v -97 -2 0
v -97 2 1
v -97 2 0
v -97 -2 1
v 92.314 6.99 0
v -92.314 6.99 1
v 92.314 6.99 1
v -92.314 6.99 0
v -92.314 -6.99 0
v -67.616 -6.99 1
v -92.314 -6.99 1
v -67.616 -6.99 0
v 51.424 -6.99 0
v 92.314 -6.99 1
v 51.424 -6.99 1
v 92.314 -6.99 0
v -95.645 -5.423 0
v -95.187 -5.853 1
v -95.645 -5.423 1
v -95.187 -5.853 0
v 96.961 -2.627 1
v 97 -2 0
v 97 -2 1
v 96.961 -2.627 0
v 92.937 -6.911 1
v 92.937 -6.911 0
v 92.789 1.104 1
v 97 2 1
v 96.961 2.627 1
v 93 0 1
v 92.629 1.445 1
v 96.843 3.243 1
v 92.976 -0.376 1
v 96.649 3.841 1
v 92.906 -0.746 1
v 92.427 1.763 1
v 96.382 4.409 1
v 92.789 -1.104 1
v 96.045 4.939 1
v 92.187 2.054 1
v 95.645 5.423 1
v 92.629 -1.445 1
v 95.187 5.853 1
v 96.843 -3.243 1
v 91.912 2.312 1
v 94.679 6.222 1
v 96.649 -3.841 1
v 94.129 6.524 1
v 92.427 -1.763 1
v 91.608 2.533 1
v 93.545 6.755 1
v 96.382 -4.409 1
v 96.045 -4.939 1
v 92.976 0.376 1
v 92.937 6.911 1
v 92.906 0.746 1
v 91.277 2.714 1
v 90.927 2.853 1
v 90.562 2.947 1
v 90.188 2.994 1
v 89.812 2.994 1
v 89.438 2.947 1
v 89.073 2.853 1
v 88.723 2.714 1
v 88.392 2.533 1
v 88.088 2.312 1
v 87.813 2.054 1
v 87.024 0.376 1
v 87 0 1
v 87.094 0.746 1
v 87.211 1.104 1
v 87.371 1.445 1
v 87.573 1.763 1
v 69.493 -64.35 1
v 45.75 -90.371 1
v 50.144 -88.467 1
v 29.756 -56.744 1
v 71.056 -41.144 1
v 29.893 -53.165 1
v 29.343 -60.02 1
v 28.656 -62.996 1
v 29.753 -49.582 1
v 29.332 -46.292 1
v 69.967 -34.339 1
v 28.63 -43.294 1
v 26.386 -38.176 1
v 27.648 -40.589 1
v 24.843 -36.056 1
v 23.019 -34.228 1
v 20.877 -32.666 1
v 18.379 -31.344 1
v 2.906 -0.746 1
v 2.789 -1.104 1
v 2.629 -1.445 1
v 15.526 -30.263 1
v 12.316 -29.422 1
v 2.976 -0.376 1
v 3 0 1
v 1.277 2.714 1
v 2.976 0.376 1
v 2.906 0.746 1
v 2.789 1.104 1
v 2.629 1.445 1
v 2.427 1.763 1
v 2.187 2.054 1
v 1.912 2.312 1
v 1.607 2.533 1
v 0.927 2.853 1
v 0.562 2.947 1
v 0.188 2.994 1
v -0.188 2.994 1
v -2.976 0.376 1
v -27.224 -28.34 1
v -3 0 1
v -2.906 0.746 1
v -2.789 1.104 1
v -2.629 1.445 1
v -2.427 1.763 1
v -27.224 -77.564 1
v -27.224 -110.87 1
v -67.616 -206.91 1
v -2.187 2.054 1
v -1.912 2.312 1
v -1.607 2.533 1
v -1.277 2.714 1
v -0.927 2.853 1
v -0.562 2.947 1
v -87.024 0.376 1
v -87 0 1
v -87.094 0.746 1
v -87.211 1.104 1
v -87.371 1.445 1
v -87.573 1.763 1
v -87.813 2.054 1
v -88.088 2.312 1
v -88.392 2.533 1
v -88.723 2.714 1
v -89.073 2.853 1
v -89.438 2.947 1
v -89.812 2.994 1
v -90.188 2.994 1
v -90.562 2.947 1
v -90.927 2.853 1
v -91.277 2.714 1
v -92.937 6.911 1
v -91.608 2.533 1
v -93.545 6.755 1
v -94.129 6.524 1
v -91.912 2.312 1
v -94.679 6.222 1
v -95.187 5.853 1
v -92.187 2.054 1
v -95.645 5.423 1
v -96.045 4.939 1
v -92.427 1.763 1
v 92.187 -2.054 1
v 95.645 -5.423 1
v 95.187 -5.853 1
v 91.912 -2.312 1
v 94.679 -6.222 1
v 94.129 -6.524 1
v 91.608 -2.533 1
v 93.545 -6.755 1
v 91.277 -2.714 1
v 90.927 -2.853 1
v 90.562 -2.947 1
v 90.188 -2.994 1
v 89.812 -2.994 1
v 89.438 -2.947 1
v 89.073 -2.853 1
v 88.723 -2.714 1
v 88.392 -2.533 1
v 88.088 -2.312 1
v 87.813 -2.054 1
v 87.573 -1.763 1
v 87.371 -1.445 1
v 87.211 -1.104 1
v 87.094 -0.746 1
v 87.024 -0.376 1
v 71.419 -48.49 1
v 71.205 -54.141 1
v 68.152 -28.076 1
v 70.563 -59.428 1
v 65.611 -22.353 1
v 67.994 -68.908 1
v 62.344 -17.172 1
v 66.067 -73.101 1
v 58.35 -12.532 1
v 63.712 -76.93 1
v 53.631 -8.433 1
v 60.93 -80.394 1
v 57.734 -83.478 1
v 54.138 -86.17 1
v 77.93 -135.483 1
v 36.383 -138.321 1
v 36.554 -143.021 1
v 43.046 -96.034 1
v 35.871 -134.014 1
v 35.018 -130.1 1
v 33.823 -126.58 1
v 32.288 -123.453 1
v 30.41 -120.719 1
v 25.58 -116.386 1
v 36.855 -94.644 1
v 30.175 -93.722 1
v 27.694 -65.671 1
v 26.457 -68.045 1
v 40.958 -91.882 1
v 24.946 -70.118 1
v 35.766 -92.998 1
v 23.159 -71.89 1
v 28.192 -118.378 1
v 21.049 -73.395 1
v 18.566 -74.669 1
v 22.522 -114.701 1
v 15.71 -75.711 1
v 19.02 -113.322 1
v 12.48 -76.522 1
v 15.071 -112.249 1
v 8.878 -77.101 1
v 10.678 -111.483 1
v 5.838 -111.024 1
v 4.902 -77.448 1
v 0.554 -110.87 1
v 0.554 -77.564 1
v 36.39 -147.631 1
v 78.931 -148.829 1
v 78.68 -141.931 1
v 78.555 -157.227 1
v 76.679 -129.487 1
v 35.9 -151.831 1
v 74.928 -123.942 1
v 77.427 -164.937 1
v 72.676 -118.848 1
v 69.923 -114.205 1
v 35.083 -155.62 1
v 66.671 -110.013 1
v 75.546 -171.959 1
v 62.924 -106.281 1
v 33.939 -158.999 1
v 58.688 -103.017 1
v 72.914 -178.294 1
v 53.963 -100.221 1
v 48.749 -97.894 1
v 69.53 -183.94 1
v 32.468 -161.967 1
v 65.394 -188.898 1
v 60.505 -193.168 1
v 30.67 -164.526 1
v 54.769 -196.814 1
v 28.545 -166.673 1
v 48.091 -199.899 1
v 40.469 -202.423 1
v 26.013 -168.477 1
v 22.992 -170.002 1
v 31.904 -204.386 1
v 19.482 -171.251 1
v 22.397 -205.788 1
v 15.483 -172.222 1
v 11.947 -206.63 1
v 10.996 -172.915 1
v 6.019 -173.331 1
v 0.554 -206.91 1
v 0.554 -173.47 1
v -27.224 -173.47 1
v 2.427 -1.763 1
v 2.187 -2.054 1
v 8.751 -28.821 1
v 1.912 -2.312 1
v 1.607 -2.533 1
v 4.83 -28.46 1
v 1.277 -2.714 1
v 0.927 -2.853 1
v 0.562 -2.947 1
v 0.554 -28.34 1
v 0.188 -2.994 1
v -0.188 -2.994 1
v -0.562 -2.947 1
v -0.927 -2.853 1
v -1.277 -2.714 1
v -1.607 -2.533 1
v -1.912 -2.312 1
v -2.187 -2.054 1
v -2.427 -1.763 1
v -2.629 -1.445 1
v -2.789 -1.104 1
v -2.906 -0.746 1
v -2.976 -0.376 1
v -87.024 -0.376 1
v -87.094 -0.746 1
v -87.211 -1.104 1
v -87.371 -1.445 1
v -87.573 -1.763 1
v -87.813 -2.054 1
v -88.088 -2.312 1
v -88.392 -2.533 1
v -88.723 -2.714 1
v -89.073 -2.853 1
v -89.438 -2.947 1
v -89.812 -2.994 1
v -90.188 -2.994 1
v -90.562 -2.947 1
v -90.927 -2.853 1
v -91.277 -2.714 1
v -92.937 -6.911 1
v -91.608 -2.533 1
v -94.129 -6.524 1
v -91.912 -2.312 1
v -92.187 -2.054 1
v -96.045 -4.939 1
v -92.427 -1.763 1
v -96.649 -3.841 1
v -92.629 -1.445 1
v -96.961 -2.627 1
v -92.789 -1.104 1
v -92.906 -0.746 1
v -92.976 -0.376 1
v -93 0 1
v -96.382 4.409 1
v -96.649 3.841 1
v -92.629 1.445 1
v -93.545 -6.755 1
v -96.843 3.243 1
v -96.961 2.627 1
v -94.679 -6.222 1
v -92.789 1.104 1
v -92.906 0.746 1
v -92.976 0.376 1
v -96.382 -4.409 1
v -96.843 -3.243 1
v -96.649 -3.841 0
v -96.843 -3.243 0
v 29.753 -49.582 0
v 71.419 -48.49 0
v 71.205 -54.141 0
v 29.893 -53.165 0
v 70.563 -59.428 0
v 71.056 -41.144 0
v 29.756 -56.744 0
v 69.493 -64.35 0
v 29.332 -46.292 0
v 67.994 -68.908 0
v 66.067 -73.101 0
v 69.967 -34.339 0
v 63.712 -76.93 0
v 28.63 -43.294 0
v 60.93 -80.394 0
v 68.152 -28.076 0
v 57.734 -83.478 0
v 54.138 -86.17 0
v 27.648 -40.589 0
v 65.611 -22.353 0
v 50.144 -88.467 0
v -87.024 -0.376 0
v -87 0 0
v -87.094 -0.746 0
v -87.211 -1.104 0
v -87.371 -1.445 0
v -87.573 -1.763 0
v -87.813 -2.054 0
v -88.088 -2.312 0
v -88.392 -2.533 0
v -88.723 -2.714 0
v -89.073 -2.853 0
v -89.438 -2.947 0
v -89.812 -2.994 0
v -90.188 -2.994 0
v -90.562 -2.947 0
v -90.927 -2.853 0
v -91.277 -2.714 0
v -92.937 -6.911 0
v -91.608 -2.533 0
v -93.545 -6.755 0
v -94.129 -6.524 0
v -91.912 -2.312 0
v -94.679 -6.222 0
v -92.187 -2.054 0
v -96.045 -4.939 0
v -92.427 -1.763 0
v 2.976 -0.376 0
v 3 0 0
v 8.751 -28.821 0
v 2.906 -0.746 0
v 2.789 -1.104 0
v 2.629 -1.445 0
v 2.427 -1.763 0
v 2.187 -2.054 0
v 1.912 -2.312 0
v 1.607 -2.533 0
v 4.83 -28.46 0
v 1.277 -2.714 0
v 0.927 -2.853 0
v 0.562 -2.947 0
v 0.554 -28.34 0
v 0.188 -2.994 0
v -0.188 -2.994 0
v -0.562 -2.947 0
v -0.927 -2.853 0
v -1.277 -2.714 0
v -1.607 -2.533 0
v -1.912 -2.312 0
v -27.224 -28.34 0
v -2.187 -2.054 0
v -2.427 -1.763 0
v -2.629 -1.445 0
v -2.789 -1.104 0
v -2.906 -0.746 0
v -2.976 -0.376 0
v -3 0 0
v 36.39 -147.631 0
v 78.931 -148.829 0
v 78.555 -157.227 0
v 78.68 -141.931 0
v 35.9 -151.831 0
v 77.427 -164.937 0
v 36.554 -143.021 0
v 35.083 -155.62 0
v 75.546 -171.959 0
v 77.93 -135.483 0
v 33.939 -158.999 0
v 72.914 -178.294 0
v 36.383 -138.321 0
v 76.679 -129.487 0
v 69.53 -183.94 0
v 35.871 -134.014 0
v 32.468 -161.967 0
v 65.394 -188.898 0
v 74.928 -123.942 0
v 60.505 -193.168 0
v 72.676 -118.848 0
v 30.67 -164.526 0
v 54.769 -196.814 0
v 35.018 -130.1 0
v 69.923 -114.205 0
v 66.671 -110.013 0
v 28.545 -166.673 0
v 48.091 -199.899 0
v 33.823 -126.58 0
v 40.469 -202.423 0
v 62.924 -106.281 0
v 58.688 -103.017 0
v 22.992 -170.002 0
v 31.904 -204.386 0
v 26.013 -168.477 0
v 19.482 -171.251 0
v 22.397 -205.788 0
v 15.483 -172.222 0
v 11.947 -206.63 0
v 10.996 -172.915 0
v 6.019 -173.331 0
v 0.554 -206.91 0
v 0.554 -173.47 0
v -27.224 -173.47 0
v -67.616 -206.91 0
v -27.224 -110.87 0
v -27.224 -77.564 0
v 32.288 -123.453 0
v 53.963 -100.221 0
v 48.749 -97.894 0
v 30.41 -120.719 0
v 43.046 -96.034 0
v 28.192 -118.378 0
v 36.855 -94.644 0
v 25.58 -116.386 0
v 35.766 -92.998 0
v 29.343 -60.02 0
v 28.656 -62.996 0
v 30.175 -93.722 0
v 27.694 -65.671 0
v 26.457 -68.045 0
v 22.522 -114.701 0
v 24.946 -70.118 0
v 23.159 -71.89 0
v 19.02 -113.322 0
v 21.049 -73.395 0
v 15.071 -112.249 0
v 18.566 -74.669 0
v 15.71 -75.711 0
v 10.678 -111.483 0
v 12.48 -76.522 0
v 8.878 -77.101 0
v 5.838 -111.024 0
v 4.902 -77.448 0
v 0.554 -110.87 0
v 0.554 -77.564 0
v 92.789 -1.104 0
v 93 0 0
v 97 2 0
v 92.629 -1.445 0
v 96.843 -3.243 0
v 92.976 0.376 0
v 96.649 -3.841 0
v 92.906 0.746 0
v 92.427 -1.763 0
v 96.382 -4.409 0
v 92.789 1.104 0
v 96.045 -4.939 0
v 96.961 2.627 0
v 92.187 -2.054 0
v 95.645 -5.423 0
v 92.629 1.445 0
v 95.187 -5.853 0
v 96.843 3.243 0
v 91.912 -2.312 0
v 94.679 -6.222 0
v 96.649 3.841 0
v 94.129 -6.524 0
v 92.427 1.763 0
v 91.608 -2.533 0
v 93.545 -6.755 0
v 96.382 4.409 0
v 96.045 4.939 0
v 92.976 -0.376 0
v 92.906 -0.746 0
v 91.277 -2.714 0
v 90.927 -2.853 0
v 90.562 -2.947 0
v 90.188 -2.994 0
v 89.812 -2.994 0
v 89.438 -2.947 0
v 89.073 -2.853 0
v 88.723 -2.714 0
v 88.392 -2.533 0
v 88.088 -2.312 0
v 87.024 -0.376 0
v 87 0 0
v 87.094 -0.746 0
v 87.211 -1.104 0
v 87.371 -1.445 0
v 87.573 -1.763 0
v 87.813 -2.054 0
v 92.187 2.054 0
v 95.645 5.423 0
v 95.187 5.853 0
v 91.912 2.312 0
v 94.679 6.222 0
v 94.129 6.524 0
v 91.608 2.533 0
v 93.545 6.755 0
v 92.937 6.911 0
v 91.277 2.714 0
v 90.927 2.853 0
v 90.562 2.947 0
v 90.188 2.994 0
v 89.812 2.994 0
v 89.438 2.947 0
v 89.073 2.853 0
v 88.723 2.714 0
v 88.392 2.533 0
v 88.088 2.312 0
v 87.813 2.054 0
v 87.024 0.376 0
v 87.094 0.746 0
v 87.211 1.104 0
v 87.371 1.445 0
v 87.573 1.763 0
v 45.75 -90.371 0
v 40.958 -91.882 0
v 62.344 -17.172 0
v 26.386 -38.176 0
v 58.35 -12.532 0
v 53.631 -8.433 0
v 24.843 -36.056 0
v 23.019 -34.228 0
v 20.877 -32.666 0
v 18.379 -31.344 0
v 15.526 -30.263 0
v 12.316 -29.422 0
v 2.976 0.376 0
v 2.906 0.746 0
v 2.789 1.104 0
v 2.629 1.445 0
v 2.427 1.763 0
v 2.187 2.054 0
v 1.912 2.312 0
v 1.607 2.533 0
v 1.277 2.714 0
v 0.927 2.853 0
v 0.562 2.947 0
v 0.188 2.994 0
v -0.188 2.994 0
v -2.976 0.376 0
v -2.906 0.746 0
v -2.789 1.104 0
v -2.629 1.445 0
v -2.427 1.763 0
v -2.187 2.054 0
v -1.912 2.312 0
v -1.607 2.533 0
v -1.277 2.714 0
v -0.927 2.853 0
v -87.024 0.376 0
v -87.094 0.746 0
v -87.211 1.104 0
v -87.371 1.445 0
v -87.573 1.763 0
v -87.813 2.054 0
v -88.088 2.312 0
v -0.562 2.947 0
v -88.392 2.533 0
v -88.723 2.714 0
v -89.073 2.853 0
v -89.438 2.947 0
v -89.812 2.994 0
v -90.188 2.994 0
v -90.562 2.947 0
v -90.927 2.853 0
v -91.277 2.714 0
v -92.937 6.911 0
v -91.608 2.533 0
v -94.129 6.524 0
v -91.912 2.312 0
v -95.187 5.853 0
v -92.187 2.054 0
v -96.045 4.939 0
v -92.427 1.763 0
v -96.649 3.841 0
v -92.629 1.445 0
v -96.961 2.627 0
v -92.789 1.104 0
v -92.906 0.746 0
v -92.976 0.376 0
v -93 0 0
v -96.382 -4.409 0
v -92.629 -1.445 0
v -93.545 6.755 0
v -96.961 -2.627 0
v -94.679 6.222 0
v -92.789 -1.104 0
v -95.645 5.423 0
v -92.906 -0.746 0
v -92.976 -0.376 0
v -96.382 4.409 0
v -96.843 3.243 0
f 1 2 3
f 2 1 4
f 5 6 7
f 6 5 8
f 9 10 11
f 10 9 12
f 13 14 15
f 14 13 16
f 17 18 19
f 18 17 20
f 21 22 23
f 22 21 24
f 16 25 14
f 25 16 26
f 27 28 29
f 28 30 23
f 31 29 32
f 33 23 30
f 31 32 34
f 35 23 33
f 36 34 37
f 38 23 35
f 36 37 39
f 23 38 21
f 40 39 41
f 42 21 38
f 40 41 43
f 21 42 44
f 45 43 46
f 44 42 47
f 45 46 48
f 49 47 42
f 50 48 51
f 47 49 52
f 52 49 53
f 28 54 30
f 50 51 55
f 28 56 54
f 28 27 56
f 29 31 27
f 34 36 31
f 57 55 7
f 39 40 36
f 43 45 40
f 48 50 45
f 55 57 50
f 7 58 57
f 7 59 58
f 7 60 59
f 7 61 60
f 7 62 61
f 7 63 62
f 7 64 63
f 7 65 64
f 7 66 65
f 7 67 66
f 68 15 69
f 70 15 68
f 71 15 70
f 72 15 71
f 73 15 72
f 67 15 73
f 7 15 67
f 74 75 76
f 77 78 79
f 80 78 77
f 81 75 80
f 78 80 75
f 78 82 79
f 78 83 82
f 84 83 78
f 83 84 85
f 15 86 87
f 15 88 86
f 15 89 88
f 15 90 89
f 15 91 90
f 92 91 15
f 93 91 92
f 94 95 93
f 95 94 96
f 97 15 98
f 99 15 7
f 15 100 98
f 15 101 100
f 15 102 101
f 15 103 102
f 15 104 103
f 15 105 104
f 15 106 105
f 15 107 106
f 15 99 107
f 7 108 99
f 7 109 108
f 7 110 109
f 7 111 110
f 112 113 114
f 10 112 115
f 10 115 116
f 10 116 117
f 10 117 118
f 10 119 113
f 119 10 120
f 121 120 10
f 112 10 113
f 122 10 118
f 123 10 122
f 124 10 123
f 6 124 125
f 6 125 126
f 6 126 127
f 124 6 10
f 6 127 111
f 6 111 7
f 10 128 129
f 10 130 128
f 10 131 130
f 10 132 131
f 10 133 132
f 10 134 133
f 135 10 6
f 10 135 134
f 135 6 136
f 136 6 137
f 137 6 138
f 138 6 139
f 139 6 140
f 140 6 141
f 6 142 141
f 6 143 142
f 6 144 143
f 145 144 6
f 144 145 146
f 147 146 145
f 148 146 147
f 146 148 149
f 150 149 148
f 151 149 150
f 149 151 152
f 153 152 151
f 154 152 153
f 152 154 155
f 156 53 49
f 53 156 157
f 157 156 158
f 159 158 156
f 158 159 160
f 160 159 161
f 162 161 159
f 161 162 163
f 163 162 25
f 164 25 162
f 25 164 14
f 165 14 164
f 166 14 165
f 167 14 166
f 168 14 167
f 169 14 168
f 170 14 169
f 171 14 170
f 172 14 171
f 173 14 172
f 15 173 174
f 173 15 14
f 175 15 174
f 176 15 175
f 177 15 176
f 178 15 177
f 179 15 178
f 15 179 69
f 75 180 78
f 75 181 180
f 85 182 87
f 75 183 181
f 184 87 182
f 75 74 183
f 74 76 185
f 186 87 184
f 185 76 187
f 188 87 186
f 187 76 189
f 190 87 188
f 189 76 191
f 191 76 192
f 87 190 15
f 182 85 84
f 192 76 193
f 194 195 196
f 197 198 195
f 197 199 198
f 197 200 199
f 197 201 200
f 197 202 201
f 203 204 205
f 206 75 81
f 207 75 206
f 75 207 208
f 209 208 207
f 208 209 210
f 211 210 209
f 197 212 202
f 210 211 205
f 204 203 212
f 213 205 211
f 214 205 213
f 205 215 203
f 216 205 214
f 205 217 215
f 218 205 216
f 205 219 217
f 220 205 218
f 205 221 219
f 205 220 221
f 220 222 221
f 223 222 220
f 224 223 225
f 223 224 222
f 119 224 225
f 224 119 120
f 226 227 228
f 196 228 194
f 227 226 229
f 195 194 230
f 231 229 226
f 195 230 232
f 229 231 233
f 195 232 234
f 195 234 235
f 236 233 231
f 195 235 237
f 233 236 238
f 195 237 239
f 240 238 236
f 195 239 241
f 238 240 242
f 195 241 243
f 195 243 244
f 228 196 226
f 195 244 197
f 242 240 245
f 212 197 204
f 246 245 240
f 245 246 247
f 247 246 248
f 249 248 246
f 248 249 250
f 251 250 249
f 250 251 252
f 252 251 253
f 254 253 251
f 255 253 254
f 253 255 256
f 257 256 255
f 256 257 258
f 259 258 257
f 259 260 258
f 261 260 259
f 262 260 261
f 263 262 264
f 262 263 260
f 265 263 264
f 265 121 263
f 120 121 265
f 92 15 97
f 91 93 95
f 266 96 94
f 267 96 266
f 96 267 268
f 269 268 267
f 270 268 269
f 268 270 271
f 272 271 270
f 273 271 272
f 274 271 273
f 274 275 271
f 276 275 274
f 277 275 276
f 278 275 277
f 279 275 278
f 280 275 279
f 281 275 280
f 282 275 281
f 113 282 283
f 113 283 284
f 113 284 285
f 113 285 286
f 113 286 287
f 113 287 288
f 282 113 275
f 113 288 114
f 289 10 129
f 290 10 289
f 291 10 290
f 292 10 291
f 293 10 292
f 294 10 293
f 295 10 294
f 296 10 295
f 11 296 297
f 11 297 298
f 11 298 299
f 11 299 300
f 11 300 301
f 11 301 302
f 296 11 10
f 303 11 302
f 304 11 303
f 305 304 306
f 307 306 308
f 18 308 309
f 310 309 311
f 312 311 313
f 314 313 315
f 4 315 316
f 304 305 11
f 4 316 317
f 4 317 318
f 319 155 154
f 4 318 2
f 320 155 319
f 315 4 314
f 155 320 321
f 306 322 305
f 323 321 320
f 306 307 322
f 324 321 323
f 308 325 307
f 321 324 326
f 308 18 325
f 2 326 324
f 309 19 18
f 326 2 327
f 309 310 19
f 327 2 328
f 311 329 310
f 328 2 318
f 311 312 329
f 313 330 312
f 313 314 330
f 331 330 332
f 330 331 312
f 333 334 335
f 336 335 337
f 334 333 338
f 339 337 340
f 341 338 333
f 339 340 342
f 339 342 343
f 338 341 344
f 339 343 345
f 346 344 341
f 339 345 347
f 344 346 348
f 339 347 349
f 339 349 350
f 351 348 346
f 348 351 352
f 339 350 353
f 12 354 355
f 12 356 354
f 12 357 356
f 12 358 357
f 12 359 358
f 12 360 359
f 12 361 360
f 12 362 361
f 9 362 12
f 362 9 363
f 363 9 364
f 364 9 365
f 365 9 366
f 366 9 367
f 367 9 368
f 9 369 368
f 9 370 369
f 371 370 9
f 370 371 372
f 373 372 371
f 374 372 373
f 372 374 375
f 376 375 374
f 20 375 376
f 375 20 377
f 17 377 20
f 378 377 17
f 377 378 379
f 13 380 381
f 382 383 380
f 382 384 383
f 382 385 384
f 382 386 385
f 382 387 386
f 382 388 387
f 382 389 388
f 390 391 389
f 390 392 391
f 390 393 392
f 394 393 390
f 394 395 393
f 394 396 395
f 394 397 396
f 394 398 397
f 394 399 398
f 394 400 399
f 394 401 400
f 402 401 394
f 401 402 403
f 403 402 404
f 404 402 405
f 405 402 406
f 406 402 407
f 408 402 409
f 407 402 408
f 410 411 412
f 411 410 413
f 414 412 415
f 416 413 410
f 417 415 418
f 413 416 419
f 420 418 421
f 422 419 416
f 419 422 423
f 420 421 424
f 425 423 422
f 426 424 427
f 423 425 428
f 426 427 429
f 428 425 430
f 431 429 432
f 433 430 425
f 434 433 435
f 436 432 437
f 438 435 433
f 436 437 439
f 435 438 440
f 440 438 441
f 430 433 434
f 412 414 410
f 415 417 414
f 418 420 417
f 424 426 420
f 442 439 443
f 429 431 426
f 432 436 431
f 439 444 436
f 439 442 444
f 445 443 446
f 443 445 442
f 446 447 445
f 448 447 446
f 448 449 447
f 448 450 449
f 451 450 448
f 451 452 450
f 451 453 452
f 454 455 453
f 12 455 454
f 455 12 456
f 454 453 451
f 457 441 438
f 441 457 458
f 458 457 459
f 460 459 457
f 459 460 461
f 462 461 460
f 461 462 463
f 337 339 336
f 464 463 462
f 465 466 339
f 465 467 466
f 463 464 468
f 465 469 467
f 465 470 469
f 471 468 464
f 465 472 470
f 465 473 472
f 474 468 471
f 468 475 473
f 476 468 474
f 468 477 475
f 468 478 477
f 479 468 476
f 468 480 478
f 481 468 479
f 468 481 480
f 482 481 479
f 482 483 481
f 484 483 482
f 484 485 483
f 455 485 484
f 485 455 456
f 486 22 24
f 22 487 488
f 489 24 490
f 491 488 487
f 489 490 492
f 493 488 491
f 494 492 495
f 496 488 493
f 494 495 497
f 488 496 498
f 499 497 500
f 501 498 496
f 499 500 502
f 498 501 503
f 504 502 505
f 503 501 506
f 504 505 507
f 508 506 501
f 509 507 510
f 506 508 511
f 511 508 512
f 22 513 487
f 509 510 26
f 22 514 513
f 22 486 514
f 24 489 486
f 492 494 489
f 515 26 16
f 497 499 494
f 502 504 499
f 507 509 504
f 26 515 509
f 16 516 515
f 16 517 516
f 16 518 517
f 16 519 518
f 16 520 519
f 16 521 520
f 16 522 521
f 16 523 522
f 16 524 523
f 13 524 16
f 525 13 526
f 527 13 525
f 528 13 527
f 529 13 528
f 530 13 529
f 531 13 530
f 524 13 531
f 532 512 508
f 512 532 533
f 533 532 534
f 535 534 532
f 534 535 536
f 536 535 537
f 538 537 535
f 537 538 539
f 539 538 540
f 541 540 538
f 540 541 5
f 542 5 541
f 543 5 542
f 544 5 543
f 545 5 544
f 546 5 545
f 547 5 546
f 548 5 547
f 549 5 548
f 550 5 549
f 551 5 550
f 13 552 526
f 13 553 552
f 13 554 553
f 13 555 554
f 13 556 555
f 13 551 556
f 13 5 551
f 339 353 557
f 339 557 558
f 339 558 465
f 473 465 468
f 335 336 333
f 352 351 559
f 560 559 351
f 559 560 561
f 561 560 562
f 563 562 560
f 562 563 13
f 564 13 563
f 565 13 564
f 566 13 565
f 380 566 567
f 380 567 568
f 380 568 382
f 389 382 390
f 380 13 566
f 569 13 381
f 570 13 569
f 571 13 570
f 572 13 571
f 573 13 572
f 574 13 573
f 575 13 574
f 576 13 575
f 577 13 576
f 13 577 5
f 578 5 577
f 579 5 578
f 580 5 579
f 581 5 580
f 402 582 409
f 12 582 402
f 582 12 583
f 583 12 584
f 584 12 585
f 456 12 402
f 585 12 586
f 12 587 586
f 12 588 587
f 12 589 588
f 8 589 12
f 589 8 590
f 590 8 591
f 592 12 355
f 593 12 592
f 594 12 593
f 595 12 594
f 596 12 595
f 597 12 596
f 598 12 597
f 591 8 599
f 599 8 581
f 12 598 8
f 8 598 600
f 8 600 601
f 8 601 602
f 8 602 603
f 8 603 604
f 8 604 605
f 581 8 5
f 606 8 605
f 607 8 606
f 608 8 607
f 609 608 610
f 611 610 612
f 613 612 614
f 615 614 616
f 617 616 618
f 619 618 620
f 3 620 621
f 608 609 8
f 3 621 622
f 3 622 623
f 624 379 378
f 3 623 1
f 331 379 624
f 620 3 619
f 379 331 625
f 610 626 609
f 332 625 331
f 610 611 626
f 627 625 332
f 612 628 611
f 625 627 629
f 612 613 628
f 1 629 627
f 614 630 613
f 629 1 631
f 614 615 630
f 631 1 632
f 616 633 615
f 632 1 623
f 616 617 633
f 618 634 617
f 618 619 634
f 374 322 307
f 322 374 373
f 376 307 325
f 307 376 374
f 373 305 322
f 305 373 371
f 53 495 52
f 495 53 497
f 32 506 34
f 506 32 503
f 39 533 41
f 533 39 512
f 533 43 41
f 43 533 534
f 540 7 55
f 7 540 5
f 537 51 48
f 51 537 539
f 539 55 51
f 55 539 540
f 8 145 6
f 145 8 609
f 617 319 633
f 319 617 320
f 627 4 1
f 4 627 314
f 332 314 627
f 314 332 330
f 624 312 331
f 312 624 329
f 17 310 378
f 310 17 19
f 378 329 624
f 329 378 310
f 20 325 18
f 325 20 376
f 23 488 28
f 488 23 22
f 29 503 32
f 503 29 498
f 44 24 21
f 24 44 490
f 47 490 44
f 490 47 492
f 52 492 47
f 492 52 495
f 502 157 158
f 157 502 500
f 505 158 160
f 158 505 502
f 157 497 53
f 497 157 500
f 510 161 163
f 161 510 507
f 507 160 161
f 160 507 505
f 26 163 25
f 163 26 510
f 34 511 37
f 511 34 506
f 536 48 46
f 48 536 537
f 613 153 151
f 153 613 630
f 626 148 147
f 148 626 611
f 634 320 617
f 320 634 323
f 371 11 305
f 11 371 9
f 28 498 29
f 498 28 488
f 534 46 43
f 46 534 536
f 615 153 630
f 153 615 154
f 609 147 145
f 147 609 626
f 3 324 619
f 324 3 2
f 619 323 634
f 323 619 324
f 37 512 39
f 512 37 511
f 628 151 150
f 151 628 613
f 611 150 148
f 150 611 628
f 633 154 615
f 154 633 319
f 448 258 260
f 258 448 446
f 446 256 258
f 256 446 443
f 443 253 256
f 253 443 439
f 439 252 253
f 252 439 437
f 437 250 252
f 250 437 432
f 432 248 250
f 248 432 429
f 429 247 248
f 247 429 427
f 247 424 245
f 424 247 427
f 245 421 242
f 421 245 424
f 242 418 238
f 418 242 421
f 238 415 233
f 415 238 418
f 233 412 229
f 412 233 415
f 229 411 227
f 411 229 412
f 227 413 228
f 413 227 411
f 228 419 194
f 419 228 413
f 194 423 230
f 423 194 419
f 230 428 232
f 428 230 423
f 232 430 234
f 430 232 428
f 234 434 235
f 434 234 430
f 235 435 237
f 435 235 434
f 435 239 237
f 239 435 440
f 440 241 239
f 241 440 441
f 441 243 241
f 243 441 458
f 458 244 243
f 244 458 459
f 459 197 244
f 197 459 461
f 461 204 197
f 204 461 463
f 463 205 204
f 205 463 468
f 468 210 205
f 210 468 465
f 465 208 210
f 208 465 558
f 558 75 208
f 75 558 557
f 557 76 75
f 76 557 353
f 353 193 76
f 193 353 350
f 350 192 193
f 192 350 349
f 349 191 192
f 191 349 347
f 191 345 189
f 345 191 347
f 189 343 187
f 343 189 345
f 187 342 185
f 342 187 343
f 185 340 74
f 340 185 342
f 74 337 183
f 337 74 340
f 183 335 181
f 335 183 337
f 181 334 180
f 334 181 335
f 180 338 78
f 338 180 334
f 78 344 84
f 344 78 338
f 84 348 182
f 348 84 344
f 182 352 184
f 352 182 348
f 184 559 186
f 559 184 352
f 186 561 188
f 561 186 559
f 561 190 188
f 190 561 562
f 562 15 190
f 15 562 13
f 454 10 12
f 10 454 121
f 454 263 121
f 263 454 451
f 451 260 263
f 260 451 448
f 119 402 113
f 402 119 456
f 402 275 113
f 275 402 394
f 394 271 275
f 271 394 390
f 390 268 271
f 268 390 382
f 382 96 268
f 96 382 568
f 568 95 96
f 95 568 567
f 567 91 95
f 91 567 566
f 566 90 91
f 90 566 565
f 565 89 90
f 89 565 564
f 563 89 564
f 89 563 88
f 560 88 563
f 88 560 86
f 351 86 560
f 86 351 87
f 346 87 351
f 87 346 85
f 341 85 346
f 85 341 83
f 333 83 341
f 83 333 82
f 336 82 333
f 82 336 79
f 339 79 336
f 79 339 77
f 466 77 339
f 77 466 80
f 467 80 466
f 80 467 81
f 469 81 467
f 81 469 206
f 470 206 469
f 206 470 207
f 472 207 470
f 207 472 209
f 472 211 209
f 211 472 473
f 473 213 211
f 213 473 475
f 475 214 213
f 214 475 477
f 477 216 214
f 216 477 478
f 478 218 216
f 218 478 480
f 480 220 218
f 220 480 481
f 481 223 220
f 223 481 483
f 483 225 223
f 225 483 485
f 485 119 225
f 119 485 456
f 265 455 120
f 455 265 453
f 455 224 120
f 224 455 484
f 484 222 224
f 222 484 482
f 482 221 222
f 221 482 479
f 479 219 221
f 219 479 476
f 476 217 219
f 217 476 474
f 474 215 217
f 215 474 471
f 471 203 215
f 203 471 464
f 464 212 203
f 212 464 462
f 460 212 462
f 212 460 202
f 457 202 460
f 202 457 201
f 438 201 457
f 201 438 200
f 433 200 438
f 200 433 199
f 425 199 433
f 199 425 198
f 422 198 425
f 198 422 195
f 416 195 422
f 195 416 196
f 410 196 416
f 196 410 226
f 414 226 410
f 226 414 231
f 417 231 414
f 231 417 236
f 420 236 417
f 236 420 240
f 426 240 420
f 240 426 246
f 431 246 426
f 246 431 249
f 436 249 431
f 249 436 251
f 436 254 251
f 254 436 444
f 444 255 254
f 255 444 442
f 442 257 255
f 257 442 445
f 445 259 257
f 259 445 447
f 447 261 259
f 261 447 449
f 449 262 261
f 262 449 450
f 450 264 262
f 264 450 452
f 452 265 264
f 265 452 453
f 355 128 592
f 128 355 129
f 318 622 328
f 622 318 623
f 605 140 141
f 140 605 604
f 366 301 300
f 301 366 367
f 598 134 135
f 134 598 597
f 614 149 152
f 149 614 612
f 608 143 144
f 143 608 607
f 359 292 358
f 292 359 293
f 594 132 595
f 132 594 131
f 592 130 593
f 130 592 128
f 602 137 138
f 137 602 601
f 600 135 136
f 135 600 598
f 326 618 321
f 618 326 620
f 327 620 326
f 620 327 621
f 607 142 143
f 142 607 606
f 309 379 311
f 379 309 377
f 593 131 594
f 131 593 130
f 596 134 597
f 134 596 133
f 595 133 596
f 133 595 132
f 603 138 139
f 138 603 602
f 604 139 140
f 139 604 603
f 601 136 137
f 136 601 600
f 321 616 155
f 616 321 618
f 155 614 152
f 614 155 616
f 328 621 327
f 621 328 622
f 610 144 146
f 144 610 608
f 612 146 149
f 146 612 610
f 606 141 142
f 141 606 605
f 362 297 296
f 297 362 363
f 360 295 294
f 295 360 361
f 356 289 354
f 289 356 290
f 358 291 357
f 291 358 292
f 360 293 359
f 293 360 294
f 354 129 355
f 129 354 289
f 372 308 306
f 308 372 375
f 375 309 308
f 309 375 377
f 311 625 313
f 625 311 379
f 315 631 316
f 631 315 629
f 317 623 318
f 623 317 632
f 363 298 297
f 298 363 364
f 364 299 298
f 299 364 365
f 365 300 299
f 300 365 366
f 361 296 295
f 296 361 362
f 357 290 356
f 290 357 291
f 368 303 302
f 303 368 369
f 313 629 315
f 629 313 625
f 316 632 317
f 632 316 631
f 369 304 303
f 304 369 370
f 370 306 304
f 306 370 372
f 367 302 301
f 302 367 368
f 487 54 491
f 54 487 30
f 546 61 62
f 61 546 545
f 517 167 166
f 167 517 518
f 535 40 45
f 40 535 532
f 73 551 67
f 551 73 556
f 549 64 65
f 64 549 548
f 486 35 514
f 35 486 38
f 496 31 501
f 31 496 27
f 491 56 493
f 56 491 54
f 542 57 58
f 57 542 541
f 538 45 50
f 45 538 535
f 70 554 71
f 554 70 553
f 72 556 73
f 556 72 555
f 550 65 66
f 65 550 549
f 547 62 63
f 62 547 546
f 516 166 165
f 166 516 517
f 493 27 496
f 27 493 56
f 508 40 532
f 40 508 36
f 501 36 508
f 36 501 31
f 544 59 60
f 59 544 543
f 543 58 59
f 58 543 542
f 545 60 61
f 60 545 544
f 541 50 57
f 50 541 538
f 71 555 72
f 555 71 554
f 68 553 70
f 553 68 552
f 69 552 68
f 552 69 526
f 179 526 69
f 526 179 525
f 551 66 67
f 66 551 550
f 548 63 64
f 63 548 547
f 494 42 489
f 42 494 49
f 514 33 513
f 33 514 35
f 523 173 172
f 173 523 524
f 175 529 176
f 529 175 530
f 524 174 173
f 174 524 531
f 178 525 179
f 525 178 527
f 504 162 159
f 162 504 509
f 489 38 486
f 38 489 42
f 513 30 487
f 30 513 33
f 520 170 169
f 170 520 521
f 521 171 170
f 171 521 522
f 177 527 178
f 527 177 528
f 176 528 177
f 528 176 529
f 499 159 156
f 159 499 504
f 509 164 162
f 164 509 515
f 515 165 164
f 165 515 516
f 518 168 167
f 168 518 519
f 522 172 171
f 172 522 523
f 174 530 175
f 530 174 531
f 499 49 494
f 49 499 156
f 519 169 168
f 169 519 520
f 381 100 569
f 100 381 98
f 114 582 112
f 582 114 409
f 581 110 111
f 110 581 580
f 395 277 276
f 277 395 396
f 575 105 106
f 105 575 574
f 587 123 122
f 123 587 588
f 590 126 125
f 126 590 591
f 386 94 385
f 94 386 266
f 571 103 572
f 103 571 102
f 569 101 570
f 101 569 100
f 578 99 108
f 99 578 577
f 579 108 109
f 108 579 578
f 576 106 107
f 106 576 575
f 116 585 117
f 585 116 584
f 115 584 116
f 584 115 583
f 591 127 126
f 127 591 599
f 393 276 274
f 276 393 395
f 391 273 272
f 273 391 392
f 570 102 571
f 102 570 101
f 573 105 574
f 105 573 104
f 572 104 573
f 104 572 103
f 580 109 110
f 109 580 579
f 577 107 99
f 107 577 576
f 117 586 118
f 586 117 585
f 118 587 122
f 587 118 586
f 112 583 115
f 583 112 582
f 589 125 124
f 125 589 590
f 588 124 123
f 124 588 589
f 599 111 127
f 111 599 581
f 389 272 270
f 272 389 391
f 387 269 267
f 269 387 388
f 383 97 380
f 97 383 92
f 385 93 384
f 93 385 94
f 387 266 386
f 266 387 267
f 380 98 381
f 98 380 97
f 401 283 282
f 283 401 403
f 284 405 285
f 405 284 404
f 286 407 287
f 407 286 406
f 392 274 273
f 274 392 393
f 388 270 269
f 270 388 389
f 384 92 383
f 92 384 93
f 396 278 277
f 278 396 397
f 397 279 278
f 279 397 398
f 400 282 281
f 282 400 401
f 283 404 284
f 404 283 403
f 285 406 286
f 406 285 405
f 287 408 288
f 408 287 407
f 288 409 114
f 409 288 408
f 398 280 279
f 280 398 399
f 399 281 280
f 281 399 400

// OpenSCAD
$fn = 50;


difference() {
	union() {
		translate(v = [0, 0, 0]) {
			rotate(a = [0, 0, 0]) {
				hull() {
					translate(v = [-92.0000000000, 2.0000000000, 0]) {
						rotate(a = [0, 0, 0]) {
							translate(v = [0, 0, 0]) {
								rotate(a = [0, 0, 0]) {
									cylinder(h = 1, r = 5);
								}
							}
						}
					}
					translate(v = [92.0000000000, 2.0000000000, 0]) {
						rotate(a = [0, 0, 0]) {
							translate(v = [0, 0, 0]) {
								rotate(a = [0, 0, 0]) {
									cylinder(h = 1, r = 5);
								}
							}
						}
					}
					translate(v = [-92.0000000000, -2.0000000000, 0]) {
						rotate(a = [0, 0, 0]) {
							translate(v = [0, 0, 0]) {
								rotate(a = [0, 0, 0]) {
									cylinder(h = 1, r = 5);
								}
							}
						}
					}
					translate(v = [92.0000000000, -2.0000000000, 0]) {
						rotate(a = [0, 0, 0]) {
							translate(v = [0, 0, 0]) {
								rotate(a = [0, 0, 0]) {
									cylinder(h = 1, r = 5);
								}
							}
						}
					}
				}
			}
		}
		translate(v = [0, 0, 0]) {
			rotate(a = [0, 0, 0]) {
				linear_extrude(height = 1) {
					text(font = "DejaVu Sans Mono:style=Bold", halign = "center", size = 209.0000000000, text = "B", valign = "top");
				}
			}
		}
	}
	union() {
		translate(v = [-90.0000000000, 0.0000000000, -125.0000000000]) {
			rotate(a = [0, 0, 0]) {
				cylinder(h = 250, r = 3.0000000000);
			}
		}
		translate(v = [90.0000000000, 0.0000000000, -125.0000000000]) {
			rotate(a = [0, 0, 0]) {
				cylinder(h = 250, r = 3.0000000000);
			}
		}
		translate(v = [90.0000000000, 0.0000000000, -125.0000000000]) {
			rotate(a = [0, 0, 0]) {
				cylinder(h = 250, r = 3.0000000000);
			}
		}
		translate(v = [0, 0, -125.0000000000]) {
			rotate(a = [0, 0, 0]) {
				cylinder(h = 250, r = 3.0000000000);
			}
		}
	}
}
